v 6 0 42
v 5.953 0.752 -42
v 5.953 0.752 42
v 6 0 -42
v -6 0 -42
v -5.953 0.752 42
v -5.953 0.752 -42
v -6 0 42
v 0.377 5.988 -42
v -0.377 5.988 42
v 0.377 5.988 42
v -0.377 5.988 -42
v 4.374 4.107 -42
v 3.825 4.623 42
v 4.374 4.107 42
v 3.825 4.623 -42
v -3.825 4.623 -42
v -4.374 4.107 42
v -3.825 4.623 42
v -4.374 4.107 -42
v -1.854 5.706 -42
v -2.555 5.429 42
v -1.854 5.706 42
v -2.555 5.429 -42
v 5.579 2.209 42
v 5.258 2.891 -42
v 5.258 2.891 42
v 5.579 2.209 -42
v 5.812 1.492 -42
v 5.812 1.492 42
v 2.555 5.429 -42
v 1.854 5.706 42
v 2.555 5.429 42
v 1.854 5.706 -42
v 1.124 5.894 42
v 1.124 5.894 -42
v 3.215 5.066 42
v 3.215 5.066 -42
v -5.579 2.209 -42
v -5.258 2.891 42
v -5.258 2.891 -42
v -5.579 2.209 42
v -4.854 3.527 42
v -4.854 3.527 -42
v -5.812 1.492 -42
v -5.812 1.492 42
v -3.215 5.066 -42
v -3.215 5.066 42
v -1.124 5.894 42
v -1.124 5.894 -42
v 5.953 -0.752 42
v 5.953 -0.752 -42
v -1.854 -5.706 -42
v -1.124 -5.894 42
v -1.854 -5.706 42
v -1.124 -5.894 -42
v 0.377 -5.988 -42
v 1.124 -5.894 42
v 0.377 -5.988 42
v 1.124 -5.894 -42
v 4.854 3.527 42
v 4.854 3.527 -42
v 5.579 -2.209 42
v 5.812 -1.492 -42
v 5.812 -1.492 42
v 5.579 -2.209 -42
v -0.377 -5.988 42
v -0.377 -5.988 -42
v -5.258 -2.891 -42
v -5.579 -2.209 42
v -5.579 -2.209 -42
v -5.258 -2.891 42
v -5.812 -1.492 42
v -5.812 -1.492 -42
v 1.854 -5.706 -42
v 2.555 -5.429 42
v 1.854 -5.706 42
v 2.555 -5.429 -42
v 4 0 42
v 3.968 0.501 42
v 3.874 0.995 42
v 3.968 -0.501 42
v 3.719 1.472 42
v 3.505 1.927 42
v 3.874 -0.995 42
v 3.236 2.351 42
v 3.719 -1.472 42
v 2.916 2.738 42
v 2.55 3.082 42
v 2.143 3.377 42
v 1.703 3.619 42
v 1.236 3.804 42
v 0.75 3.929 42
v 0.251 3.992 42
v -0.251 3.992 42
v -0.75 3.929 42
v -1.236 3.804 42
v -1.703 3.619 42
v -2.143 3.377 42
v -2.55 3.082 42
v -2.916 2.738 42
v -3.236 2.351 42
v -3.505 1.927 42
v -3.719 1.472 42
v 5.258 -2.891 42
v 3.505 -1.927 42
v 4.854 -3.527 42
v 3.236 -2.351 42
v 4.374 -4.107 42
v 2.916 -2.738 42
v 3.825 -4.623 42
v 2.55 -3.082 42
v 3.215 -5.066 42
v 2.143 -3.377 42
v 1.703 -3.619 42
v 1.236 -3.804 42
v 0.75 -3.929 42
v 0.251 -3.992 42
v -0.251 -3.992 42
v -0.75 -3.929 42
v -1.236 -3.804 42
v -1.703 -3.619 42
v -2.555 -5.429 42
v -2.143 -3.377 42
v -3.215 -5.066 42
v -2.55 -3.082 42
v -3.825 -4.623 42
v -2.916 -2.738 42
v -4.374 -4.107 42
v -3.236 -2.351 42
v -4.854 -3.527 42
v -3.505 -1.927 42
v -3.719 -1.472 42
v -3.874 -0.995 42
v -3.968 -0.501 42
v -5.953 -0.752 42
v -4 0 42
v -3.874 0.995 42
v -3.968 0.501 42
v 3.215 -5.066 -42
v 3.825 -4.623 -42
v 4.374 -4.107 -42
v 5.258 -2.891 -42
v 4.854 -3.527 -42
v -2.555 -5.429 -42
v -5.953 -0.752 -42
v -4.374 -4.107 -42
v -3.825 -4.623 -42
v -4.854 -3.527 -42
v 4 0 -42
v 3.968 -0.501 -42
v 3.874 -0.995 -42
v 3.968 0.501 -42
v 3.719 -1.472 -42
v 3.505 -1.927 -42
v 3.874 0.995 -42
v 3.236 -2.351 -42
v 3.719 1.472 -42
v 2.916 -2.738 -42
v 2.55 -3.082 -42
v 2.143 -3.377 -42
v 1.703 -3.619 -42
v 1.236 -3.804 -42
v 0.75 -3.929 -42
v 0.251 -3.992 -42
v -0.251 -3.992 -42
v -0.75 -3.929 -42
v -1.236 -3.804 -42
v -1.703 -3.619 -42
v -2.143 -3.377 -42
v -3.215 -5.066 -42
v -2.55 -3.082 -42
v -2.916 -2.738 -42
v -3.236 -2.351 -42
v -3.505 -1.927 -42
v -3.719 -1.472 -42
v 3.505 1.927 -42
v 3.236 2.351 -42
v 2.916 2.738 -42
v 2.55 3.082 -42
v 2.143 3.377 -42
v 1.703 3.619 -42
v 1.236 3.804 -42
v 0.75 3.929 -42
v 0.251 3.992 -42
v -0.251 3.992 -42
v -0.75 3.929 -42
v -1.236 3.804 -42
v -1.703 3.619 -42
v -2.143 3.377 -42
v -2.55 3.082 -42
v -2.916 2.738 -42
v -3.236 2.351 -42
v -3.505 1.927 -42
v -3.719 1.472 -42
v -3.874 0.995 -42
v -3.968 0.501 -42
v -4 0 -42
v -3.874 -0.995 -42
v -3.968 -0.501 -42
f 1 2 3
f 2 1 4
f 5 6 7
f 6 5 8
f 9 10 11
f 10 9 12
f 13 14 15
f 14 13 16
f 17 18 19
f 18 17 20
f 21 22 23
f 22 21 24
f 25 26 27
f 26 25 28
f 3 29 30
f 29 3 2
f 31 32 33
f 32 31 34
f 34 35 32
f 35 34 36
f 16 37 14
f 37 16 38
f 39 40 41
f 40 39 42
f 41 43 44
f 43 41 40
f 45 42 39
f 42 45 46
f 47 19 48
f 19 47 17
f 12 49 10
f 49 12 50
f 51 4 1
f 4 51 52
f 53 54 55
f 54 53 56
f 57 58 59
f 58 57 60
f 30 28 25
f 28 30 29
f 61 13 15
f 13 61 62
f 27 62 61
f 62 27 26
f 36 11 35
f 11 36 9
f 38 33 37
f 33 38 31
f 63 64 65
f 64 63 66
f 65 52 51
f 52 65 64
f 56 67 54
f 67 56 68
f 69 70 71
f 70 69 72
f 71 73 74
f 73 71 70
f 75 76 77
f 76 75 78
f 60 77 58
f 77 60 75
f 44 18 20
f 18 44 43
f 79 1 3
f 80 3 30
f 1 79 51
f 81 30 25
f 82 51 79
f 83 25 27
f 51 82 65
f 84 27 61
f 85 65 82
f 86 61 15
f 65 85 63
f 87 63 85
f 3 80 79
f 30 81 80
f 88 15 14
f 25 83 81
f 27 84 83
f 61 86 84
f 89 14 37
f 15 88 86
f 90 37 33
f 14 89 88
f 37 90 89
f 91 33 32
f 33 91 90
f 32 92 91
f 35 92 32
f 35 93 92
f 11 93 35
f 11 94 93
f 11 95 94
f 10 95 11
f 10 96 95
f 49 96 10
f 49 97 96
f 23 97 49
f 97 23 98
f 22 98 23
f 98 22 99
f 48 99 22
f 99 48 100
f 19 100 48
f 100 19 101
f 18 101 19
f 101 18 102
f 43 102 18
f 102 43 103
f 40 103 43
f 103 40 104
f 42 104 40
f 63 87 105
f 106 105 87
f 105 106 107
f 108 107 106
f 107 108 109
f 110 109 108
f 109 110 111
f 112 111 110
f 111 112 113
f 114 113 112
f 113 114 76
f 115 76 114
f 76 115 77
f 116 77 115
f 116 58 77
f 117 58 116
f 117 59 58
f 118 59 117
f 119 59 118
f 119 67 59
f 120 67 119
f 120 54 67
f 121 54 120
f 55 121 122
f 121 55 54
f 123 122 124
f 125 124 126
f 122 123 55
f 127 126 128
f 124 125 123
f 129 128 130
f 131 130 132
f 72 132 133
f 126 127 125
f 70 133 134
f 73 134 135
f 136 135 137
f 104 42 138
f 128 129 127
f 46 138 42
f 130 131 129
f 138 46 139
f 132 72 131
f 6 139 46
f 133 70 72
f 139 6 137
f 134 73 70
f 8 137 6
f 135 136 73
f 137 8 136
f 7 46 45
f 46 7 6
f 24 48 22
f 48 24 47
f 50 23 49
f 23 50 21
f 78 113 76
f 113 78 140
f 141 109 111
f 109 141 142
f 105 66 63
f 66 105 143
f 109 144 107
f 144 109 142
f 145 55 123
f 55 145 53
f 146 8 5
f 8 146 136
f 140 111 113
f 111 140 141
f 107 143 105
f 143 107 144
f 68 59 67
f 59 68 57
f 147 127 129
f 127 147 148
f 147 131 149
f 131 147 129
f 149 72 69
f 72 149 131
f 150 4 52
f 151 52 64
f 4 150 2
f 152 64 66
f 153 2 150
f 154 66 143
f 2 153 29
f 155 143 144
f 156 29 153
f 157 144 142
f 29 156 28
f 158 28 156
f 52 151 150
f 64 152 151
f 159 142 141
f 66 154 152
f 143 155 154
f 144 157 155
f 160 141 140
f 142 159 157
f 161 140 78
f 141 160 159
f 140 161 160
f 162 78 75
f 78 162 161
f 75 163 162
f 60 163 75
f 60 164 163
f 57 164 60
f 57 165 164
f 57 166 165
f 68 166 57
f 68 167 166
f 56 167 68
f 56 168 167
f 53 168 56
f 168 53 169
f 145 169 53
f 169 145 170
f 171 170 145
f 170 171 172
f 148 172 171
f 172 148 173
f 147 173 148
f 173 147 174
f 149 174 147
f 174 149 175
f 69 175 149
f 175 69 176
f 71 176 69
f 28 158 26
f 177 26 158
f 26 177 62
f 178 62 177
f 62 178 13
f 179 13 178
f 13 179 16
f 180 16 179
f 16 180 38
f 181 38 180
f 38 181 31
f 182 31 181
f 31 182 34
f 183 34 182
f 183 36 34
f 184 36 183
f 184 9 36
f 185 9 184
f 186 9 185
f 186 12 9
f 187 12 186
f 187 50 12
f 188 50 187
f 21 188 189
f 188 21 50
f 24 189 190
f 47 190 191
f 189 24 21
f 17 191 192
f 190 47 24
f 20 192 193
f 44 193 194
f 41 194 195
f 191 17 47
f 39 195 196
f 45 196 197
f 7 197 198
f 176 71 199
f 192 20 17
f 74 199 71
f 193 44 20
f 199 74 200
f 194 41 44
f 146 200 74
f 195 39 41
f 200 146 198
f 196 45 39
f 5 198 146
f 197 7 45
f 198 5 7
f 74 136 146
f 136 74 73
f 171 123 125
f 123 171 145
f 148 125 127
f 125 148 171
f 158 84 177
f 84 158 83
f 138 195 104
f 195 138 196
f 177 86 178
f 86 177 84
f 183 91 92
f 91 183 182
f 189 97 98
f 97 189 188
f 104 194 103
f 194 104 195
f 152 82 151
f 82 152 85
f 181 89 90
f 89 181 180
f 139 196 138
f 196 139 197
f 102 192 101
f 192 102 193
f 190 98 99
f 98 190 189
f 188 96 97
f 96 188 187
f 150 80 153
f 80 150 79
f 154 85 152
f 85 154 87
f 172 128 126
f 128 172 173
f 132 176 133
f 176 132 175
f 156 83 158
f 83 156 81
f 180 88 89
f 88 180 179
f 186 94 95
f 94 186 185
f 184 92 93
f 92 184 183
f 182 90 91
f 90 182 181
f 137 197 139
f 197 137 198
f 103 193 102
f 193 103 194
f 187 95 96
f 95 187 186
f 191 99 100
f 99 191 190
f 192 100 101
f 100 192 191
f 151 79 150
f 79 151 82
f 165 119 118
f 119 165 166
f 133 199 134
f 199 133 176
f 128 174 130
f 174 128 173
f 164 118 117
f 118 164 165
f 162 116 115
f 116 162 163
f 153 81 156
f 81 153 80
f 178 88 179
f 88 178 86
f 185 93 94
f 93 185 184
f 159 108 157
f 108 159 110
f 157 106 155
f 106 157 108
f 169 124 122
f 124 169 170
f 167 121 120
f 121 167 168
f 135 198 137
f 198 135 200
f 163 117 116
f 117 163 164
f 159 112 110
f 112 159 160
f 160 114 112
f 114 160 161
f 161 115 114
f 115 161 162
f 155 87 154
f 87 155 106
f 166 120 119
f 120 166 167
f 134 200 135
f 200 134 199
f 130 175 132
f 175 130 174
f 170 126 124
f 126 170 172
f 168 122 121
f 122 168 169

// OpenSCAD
$fn = 50;


difference() {
	union() {
		translate(v = [0, 0, -42.0000000000]) {
			cylinder(h = 84, r = 6.0000000000);
		}
	}
	union() {
		translate(v = [0, 0, -100.0000000000]) {
			cylinder(h = 200, r = 4.0000000000);
		}
	}
}
